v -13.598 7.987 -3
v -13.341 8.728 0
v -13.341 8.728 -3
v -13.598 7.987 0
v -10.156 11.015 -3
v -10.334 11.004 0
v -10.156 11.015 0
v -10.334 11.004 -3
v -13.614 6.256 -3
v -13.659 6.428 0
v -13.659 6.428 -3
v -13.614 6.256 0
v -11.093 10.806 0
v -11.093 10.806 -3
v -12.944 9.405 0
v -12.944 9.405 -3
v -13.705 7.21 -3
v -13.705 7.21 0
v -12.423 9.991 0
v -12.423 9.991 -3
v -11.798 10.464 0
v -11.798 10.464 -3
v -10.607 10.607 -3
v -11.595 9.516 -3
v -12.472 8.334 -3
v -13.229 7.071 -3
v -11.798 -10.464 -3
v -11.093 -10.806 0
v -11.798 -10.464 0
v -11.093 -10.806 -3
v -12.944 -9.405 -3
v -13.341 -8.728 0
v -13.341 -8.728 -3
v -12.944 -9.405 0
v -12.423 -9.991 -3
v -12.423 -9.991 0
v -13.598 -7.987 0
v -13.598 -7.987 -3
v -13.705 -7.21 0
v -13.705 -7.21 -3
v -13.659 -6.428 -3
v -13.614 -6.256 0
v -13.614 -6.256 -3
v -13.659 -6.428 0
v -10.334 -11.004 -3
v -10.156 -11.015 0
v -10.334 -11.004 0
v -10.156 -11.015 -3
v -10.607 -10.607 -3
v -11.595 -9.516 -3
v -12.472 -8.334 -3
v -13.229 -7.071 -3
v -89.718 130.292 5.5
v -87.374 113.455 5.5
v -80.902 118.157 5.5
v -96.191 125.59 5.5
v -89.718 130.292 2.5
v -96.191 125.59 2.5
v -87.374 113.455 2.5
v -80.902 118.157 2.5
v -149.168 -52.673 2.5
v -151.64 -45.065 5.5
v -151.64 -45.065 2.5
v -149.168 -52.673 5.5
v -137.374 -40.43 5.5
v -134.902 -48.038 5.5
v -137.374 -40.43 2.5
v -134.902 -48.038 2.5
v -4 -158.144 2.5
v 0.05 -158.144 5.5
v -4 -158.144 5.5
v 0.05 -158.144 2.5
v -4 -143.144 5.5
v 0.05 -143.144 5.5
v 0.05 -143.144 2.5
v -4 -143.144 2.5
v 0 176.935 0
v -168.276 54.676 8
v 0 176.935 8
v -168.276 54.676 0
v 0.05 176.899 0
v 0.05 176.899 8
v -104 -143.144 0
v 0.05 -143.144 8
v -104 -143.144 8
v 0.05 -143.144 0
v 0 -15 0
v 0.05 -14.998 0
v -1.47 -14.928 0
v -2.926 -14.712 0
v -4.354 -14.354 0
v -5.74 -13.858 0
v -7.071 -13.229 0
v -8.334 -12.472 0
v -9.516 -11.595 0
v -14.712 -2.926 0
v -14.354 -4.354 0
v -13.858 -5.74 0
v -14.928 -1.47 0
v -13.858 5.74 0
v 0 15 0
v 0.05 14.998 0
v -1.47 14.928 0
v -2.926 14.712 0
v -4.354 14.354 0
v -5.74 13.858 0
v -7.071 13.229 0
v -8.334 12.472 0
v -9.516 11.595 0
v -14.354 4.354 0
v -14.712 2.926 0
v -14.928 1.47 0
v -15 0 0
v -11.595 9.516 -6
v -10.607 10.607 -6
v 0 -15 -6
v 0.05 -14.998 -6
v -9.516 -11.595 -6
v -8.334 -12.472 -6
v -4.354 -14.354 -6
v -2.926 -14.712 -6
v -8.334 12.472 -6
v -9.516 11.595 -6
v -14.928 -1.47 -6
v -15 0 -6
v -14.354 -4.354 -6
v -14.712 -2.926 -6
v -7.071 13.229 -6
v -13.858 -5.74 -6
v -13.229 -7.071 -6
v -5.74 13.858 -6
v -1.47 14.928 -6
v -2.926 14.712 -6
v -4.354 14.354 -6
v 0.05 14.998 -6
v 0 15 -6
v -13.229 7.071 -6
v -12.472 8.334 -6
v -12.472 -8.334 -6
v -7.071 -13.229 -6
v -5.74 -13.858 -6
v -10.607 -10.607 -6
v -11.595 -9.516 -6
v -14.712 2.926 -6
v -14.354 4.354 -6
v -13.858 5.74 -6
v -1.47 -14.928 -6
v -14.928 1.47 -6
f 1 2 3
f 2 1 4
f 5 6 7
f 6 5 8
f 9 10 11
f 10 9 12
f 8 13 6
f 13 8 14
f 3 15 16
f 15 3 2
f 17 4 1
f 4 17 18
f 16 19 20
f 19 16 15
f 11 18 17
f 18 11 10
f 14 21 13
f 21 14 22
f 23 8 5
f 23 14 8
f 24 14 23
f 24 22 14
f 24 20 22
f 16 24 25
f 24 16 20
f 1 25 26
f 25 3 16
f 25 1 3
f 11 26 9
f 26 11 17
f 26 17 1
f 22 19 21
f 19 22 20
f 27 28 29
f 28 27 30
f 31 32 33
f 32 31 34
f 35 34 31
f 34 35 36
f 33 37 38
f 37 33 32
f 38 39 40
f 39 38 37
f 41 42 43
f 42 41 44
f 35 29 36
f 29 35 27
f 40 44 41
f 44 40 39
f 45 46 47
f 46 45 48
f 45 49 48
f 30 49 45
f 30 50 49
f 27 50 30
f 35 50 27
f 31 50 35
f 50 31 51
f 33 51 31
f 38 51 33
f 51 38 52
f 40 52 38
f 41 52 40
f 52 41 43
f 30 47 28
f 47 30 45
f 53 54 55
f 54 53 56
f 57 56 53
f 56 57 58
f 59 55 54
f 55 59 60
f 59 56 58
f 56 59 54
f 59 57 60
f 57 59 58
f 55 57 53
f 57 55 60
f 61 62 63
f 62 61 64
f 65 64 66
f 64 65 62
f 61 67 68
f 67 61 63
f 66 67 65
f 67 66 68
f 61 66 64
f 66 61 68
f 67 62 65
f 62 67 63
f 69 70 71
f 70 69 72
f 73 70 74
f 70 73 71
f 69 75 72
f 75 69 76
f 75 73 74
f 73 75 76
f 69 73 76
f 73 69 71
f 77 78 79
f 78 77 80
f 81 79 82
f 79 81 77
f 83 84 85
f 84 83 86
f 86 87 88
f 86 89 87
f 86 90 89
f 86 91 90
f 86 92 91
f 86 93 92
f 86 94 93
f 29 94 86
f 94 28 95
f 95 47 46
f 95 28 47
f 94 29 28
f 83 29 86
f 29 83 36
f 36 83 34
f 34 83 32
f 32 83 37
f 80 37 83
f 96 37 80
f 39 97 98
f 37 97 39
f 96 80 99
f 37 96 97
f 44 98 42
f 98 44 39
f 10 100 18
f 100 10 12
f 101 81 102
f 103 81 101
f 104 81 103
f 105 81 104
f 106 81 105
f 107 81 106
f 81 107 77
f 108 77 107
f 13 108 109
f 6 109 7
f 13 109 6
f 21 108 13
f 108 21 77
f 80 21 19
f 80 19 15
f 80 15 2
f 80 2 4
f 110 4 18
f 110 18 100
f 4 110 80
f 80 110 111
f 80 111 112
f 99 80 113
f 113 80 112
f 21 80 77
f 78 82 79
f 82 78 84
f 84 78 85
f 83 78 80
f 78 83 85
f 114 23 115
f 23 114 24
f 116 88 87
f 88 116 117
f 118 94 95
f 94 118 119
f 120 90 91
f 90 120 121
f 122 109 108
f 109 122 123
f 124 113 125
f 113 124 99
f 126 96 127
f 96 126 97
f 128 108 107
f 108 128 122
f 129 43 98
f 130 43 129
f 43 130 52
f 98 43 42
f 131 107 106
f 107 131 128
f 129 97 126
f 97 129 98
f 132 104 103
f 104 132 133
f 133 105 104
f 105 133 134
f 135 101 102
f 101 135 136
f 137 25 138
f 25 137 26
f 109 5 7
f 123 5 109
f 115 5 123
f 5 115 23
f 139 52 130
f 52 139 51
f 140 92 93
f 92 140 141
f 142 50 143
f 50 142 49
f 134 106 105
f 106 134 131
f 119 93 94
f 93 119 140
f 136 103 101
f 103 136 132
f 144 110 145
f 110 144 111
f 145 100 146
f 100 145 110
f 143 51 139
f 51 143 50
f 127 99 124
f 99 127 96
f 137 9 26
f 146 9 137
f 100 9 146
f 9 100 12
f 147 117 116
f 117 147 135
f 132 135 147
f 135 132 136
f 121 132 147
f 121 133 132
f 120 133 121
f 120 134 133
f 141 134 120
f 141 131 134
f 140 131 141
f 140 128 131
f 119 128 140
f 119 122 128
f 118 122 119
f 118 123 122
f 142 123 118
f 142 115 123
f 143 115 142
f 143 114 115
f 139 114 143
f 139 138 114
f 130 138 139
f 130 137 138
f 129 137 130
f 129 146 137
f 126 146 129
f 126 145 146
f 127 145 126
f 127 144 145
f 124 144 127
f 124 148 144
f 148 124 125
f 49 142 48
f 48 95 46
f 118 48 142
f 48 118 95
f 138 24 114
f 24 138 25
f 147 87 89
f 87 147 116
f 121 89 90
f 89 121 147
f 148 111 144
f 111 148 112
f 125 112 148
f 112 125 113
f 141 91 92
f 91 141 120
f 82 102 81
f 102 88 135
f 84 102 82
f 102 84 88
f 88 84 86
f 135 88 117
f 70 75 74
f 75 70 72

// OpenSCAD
// module_dummy.scad
// 1:1 假模块（正五边形片，边长 208mm 留边隙、厚 8mm）
// 背面：30mm 圆形插头凸台、5 个磁铁位、5 个卡扣舌
// 沿 y 轴对称拆成 A/B 两半打印（与面框同缝）
//
// 用法：
//   openscad -D 'is_left=1' -o module_dummy_A.stl module_dummy.scad
//   openscad -D 'is_left=0' -o module_dummy_B.stl module_dummy.scad

// ============ 参数 ============
a              = 208;      // 五边形边长 (mm) — 比 220 小 12mm（每边 6mm 边隙）
thickness      = 8;        // 厚 (mm) — 题面

socket_d       = 30;       // 背面 30mm 圆形插头凸台直径
socket_h       = 6;        // 凸台高度（伸出背面）
magnet_d       = 8;        // 磁铁位直径
magnet_depth   = 3;        // 磁铁位凹位深
magnet_radius  = 12;       // 磁铁位环半径（与面框一致）

clip_w         = 8;        // 卡扣舌宽
clip_l         = 15;       // 卡扣舌长（径向伸出长度）
clip_t         = 3;        // 卡扣舌厚（高度，与面框卡扣槽深一致）

is_left = 1;

$fn = 96;

// ============ 五边形几何（与面框一致：顶点朝上） ============
function pentagon_verts(R) = [
    for (i = [0:4])
        let (a0 = 90 + i * 72)
        [ R * cos(a0), R * sin(a0) ]
];

R_circum = a / (2 * sin(36));

module dummy_plate_2d() {
    polygon(pentagon_verts(R_circum));
}

// ============ 假模块主体（未切割） ============
module dummy_full() {
    union() {
        // 主体：八边形片（实心）
        linear_extrude(height = thickness)
            dummy_plate_2d();

        // 背面插头凸台（位于背面 Z=0，前面向 +Z；凸台向 -Z 方向伸出）
        // 我们约定"背面"为 -Z 方向，凸台从底面向下伸
        translate([0, 0, -socket_h])
            cylinder(d = socket_d, h = socket_h, $fn = 64);

        // 5 个磁铁位（背面凹位）：Ø8×3，半径12mm，72°均布
        // 凹位在 Z ∈ [0, magnet_depth]（向 -Z 凹）
        for (i = [0:4]) {
            rotate([0, 0, i * 72])
                translate([magnet_radius, 0, -magnet_depth])
                    cylinder(d = magnet_d, h = magnet_depth + 0.1, $fn = 32);
        }

        // 5 个卡扣舌（径向伸出，从五边形外边缘向外伸 15mm × 厚 3mm × 宽 8mm）
        // 位于 5 条边的中点方向（126 + i*72），沿径向 +cos/sin 方向向外
        for (i = [0:4]) {
            edge_mid_angle = 126 + i * 72;
            edge_dist = R_circum * cos(36);   // 边中点到圆心距
            // 舌放在 dummy 厚度外侧（Z 方向），径向伸出
            rotate([0, 0, edge_mid_angle])
                translate([edge_dist + clip_l / 2, 0, thickness / 2])
                    cube([clip_l, clip_w, clip_t], center = true);
        }
    }
}

// ============ 半件切割 ============
module half_model() {
    difference() {
        dummy_full();
        if (is_left) {
            // 去掉右侧 (x > 0)
            translate([0.05, -R_circum - 1, -(socket_h + 1)])
                cube([R_circum * 2 + 2, (R_circum + 1) * 2, thickness + socket_h + 2]);
        } else {
            // 去掉左侧 (x < 0)
            translate([-R_circum * 2 - 2 - 0.05, -R_circum - 1, -(socket_h + 1)])
                cube([R_circum * 2 + 2, (R_circum + 1) * 2, thickness + socket_h + 2]);
        }
    }
}

half_model();
